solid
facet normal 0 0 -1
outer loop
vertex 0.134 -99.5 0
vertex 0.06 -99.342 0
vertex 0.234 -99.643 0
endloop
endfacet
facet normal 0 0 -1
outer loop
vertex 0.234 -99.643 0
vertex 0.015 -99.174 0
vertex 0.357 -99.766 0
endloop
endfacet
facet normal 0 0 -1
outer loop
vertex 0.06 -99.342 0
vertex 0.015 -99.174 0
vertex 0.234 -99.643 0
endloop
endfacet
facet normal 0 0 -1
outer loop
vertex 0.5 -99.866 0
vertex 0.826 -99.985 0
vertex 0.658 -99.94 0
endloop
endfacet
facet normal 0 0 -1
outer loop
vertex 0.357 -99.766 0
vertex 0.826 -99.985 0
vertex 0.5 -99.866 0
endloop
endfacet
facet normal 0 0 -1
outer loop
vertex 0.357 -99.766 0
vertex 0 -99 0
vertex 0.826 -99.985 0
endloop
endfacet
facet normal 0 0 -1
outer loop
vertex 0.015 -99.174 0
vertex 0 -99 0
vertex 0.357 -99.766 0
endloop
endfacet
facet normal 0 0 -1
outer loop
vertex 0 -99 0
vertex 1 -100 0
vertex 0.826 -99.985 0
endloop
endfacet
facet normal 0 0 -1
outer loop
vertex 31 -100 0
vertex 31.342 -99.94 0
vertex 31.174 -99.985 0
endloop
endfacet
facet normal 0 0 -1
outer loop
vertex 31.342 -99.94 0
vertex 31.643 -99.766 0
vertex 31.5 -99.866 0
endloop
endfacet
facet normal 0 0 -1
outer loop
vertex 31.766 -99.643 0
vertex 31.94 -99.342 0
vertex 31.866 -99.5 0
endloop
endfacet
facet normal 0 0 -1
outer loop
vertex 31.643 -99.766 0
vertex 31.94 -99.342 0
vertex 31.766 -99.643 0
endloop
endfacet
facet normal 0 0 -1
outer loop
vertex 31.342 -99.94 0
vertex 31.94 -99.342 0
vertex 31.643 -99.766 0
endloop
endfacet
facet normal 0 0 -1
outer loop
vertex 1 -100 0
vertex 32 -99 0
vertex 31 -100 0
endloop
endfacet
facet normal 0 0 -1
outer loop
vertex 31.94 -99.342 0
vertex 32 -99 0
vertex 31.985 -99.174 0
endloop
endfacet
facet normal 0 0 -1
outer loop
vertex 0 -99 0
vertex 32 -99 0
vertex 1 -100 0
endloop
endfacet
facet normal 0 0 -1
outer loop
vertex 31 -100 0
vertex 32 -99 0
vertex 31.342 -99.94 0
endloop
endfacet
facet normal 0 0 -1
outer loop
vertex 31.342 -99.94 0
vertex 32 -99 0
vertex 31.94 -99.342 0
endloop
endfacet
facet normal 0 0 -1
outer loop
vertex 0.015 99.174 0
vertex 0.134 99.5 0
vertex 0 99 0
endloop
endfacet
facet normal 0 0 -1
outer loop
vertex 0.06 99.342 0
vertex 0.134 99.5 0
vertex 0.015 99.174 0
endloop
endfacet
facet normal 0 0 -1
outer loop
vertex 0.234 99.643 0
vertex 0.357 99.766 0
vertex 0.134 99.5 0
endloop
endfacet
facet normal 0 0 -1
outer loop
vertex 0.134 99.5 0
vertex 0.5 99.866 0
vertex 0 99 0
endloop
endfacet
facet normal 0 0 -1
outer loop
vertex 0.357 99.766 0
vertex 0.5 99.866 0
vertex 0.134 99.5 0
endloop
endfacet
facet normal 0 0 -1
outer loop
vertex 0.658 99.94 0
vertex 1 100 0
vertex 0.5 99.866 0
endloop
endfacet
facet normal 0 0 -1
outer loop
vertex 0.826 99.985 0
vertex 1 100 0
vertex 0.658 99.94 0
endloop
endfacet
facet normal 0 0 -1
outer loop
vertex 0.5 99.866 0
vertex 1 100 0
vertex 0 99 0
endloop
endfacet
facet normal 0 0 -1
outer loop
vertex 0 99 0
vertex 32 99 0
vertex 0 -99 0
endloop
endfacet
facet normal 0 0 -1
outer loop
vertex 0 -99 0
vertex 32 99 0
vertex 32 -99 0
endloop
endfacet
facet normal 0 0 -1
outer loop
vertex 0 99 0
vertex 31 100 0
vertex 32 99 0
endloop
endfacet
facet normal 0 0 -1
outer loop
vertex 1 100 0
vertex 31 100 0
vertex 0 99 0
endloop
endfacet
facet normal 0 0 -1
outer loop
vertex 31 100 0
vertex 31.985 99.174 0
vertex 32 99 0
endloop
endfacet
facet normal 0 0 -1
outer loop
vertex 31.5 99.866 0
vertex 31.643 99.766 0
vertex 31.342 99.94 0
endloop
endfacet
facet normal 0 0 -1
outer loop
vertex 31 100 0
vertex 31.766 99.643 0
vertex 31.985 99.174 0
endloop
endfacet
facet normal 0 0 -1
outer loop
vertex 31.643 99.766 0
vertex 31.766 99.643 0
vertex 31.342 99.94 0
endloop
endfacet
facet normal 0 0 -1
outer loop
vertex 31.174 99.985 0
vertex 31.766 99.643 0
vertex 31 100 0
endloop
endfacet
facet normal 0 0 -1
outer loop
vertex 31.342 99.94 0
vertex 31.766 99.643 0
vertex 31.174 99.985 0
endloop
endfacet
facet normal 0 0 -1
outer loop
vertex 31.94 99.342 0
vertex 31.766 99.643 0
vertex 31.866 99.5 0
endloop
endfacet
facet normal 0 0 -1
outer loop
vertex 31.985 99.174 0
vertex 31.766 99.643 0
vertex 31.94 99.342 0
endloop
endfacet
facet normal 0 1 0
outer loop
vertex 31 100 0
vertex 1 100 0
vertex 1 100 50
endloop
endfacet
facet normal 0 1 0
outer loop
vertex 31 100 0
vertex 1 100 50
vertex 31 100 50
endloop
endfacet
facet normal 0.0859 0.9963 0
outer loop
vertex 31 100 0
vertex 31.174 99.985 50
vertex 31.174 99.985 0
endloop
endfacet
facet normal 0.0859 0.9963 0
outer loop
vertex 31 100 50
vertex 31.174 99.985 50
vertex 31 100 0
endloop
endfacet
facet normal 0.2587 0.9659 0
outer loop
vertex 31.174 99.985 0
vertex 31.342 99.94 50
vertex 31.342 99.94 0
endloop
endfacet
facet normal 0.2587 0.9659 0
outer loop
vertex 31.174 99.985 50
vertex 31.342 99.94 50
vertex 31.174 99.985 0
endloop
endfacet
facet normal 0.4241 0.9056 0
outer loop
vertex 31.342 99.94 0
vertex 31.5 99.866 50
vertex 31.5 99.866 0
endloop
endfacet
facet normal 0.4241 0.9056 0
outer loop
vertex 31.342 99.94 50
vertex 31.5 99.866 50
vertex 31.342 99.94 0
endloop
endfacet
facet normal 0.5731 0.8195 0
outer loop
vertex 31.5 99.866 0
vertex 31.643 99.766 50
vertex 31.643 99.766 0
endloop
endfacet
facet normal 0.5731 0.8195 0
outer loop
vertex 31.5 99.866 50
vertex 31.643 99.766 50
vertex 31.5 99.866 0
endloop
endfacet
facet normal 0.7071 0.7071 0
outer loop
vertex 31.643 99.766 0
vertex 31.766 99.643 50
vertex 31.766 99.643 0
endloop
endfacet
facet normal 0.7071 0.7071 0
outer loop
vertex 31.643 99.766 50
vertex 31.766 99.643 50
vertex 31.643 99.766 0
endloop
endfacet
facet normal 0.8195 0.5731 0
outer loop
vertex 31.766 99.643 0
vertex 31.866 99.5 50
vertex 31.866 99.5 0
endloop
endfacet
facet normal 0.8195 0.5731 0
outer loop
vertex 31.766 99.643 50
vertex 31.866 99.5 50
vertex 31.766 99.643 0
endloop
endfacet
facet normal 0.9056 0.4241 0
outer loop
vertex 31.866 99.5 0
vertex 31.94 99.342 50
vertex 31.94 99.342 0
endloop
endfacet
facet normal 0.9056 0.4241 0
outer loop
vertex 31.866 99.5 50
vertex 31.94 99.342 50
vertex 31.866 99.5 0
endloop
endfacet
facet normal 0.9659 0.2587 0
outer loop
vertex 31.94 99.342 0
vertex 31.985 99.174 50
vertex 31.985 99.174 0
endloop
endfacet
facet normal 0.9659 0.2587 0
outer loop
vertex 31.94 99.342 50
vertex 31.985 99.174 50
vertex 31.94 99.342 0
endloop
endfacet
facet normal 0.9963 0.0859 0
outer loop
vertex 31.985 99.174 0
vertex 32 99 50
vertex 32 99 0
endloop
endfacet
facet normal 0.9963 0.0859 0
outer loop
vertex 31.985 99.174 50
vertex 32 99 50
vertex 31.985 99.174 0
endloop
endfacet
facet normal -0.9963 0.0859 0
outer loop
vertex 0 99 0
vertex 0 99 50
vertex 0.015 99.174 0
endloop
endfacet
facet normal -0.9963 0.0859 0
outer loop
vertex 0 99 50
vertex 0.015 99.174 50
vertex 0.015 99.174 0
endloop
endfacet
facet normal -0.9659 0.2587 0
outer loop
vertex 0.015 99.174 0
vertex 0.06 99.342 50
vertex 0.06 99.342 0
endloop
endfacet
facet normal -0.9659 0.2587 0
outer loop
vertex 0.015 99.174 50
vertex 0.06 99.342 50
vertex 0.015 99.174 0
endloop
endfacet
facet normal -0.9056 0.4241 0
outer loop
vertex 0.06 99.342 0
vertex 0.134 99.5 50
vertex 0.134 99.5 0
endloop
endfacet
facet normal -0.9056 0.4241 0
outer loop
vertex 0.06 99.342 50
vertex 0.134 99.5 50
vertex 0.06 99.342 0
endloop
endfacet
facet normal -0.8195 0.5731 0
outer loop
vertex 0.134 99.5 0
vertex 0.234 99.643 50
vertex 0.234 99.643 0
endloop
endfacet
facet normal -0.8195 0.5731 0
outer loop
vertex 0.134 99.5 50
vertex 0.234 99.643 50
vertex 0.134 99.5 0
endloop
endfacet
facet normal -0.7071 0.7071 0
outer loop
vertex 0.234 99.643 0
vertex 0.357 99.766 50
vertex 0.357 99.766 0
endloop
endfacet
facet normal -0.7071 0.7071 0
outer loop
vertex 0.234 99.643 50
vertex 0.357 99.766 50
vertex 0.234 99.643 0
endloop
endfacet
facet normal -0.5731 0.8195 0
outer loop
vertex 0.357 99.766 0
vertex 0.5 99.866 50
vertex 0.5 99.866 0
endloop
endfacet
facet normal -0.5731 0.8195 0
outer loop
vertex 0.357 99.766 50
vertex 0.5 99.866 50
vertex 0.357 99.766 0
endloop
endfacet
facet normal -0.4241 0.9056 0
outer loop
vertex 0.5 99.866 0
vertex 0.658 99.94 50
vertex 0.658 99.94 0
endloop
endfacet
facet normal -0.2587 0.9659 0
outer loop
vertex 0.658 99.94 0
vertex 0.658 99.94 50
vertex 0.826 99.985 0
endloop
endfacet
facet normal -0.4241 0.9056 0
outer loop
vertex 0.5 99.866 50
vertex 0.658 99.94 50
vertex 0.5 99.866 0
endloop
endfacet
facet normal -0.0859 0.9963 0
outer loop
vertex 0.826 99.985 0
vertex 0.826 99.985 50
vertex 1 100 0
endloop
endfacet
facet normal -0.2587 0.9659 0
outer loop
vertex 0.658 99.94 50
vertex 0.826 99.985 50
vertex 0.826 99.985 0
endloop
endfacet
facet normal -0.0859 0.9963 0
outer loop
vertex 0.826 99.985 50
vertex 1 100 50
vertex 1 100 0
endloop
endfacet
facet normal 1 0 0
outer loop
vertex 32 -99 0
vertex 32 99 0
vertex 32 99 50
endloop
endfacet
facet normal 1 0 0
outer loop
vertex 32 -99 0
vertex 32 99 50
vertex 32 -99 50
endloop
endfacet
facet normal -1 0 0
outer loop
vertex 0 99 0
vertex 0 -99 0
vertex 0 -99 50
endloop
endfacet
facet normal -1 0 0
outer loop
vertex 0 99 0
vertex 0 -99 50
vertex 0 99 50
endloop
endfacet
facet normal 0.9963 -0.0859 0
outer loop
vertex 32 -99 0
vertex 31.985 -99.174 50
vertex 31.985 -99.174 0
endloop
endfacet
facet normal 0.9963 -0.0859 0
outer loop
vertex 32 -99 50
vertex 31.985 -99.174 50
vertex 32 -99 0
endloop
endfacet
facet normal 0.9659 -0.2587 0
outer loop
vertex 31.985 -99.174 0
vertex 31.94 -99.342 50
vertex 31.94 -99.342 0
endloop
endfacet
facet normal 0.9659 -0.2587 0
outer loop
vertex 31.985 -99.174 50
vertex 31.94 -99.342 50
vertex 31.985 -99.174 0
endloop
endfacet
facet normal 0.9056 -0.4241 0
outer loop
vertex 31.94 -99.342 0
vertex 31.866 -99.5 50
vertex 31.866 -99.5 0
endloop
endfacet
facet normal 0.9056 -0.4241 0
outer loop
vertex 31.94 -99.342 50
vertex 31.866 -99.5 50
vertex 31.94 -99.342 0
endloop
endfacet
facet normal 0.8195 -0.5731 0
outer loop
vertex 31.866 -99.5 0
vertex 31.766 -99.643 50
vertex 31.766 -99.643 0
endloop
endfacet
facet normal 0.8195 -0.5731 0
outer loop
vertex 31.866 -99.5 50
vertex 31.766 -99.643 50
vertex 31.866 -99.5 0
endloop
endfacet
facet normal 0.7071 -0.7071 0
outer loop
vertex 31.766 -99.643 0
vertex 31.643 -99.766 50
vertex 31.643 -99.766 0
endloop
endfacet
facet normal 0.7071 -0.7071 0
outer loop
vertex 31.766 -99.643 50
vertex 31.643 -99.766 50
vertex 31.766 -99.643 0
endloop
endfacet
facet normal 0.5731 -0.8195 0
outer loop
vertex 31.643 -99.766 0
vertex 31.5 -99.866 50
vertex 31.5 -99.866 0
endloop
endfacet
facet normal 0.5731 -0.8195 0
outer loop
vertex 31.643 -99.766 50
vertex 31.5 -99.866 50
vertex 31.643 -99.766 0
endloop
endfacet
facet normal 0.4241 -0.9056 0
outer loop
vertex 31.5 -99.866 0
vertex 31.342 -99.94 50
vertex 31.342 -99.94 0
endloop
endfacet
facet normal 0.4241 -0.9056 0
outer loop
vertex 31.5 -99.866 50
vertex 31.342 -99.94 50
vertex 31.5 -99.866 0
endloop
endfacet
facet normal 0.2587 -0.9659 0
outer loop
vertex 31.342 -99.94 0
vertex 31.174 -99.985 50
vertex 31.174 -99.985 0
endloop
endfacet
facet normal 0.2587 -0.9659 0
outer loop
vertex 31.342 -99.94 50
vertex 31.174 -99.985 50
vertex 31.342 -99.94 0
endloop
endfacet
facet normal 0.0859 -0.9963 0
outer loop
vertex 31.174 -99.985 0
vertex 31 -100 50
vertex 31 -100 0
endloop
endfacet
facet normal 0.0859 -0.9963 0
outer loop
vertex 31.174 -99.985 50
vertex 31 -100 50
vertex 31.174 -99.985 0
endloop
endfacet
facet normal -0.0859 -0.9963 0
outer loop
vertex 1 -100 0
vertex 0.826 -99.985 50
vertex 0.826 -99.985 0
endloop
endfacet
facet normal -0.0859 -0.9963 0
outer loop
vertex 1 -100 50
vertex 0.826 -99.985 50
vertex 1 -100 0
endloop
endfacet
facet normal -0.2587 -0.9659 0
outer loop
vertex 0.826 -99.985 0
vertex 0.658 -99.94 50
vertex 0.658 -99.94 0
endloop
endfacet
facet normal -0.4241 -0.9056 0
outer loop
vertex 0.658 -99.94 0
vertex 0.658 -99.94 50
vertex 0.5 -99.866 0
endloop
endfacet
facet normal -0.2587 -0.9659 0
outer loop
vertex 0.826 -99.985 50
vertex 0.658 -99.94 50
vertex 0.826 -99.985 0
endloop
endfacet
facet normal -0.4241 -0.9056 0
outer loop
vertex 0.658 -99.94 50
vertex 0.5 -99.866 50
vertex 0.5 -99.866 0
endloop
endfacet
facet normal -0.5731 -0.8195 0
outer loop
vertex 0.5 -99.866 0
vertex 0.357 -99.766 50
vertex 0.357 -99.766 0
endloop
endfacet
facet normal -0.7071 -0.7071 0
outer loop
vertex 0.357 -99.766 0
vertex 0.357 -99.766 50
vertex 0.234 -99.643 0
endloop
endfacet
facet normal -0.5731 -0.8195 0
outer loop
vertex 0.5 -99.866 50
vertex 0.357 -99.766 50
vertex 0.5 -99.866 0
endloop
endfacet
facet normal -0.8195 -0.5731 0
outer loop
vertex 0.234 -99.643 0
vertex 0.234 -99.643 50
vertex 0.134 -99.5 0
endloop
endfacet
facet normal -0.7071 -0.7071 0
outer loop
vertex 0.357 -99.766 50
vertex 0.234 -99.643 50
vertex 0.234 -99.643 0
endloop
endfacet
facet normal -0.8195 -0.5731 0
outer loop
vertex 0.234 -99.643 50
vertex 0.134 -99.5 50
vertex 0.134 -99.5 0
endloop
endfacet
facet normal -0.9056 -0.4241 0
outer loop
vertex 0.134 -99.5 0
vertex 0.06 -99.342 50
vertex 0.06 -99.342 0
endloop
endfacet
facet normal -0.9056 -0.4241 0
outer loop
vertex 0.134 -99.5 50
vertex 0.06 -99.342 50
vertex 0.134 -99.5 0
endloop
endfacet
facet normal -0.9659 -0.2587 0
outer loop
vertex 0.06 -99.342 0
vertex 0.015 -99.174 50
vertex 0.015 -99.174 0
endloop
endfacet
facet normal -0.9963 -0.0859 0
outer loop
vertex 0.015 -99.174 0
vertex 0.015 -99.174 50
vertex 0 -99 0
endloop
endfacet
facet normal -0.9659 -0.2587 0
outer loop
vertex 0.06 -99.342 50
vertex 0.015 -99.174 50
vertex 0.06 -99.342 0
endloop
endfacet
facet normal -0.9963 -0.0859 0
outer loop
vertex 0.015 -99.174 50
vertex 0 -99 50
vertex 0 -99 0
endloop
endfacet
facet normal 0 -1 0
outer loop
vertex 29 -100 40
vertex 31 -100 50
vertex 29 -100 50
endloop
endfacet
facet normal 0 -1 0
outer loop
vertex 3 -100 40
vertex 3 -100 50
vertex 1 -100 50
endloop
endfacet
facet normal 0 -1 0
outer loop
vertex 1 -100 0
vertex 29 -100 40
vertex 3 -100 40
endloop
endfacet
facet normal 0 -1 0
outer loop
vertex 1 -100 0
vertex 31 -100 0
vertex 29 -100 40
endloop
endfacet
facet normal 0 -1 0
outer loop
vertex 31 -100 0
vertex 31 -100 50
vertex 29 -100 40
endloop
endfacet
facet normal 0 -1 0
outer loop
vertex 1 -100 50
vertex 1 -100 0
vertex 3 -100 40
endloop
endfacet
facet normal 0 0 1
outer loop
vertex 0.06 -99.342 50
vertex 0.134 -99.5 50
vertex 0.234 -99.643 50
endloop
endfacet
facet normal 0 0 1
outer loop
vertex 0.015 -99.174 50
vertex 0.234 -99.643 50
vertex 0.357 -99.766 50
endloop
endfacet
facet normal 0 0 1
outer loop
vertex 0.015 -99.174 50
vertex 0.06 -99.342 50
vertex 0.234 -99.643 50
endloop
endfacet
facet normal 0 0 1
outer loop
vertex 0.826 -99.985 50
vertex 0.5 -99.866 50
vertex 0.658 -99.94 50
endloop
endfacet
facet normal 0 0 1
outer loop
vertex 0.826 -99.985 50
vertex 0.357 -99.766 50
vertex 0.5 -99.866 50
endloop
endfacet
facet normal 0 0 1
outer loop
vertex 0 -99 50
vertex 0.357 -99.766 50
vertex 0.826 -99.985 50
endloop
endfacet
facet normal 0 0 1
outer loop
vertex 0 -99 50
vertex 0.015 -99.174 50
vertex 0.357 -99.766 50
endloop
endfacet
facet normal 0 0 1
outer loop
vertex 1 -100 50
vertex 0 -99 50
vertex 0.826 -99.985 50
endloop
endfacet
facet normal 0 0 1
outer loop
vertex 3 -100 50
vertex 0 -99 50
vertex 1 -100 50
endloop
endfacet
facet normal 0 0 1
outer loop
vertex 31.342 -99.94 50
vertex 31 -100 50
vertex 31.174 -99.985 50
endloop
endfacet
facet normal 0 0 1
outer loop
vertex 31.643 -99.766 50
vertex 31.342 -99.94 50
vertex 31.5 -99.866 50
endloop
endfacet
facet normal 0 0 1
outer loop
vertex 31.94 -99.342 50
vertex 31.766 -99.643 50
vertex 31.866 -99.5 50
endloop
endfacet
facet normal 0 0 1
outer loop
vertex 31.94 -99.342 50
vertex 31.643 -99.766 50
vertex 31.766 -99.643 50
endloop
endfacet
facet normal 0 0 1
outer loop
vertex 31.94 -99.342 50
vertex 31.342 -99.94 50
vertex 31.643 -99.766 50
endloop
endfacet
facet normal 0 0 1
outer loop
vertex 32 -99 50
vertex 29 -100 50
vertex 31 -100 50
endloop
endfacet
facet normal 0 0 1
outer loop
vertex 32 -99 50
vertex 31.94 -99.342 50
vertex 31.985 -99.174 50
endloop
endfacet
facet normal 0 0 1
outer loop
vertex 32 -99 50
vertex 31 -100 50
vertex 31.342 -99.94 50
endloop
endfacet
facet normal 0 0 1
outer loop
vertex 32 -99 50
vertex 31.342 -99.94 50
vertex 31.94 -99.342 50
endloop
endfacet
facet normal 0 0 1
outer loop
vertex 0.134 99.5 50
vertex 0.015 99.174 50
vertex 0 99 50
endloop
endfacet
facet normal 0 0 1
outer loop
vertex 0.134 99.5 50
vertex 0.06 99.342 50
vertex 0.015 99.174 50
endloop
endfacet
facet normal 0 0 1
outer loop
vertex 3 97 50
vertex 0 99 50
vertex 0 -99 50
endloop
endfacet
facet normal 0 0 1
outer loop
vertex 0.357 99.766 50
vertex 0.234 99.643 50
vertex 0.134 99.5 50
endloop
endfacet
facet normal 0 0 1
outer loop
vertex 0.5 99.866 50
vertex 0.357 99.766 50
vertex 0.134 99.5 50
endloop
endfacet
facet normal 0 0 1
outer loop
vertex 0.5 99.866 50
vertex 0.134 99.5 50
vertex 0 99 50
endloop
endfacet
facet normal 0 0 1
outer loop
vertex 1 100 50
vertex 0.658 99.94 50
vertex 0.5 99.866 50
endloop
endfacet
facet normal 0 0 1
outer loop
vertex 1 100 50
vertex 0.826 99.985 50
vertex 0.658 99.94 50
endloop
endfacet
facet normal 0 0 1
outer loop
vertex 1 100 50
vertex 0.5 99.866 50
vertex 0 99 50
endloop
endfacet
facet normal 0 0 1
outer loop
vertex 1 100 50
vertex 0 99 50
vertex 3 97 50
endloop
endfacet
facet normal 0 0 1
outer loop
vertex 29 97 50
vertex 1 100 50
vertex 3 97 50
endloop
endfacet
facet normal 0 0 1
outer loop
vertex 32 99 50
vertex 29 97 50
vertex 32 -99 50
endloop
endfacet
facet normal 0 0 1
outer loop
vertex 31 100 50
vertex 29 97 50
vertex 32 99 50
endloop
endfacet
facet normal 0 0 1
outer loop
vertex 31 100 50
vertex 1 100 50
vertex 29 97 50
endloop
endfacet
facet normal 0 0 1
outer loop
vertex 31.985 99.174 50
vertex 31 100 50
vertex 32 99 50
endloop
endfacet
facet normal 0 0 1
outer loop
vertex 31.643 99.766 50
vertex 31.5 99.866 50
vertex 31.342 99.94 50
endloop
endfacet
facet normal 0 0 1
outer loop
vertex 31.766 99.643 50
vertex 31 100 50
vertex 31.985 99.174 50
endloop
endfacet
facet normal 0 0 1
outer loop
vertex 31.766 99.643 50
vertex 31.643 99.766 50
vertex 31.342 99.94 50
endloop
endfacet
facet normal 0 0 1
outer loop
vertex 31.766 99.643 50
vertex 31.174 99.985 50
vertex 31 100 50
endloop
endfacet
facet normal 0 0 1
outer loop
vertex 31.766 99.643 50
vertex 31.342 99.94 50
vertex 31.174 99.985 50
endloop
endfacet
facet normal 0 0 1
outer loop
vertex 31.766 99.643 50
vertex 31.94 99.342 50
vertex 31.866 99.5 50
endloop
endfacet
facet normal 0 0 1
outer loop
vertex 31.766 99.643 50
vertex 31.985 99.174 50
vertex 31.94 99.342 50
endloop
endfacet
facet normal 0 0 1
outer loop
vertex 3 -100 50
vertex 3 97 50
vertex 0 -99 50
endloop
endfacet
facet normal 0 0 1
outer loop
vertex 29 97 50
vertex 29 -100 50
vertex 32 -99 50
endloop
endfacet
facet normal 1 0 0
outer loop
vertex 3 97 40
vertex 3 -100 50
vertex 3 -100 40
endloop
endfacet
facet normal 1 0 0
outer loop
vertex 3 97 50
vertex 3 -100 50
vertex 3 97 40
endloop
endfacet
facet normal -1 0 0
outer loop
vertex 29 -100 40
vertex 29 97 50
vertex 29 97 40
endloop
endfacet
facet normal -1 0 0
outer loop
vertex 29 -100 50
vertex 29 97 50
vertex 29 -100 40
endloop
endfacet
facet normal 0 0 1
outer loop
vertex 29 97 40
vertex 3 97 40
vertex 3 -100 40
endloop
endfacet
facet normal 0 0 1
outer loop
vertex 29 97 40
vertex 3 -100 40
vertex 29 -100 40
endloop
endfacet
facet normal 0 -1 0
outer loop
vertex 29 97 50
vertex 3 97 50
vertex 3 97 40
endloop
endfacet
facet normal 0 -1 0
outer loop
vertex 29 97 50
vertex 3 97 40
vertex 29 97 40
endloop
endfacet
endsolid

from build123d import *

# Parameters (mm, degrees)
SKETCH_W     = 32
SKETCH_H     = 200
PAD_DEPTH    = 50
SKETCH001_W  = 26
SKETCH001_H  = 200
POCKET_DEPTH = 10
FILLET_R     = 1
FILLET001_R  = 1
FILLET002_R  = 1
FILLET003_R  = 1


with BuildPart() as part:
    # Sketch → Pad (new body)
    with BuildSketch(Plane.XY):
        with Locations((16, 0)):
            Rectangle(SKETCH_W, SKETCH_H)
    extrude(amount=PAD_DEPTH)

    # Sketch001 (on Face6 of Pad) → Pocket (cut)
    with BuildSketch(Plane.XY.offset(50)):
        with Locations((16, -3)):
            Rectangle(SKETCH001_W, SKETCH001_H)
    extrude(amount=-POCKET_DEPTH, mode=Mode.SUBTRACT)

    # Fillet
    fillet_edges = [part.edges().sort_by_distance(p)[0] for p in [
        (32, -100, 25),
    ]]
    fillet(fillet_edges, radius=FILLET_R)

    # Fillet001
    fillet001_edges = [part.edges().sort_by_distance(p)[0] for p in [
        (0, -100, 25),
    ]]
    fillet(fillet001_edges, radius=FILLET001_R)

    # Fillet002
    fillet002_edges = [part.edges().sort_by_distance(p)[0] for p in [
        (0, 100, 25),
    ]]
    fillet(fillet002_edges, radius=FILLET002_R)

    # Fillet003
    fillet003_edges = [part.edges().sort_by_distance(p)[0] for p in [
        (32, 100, 25),
    ]]
    fillet(fillet003_edges, radius=FILLET003_R)


solid = part.part
